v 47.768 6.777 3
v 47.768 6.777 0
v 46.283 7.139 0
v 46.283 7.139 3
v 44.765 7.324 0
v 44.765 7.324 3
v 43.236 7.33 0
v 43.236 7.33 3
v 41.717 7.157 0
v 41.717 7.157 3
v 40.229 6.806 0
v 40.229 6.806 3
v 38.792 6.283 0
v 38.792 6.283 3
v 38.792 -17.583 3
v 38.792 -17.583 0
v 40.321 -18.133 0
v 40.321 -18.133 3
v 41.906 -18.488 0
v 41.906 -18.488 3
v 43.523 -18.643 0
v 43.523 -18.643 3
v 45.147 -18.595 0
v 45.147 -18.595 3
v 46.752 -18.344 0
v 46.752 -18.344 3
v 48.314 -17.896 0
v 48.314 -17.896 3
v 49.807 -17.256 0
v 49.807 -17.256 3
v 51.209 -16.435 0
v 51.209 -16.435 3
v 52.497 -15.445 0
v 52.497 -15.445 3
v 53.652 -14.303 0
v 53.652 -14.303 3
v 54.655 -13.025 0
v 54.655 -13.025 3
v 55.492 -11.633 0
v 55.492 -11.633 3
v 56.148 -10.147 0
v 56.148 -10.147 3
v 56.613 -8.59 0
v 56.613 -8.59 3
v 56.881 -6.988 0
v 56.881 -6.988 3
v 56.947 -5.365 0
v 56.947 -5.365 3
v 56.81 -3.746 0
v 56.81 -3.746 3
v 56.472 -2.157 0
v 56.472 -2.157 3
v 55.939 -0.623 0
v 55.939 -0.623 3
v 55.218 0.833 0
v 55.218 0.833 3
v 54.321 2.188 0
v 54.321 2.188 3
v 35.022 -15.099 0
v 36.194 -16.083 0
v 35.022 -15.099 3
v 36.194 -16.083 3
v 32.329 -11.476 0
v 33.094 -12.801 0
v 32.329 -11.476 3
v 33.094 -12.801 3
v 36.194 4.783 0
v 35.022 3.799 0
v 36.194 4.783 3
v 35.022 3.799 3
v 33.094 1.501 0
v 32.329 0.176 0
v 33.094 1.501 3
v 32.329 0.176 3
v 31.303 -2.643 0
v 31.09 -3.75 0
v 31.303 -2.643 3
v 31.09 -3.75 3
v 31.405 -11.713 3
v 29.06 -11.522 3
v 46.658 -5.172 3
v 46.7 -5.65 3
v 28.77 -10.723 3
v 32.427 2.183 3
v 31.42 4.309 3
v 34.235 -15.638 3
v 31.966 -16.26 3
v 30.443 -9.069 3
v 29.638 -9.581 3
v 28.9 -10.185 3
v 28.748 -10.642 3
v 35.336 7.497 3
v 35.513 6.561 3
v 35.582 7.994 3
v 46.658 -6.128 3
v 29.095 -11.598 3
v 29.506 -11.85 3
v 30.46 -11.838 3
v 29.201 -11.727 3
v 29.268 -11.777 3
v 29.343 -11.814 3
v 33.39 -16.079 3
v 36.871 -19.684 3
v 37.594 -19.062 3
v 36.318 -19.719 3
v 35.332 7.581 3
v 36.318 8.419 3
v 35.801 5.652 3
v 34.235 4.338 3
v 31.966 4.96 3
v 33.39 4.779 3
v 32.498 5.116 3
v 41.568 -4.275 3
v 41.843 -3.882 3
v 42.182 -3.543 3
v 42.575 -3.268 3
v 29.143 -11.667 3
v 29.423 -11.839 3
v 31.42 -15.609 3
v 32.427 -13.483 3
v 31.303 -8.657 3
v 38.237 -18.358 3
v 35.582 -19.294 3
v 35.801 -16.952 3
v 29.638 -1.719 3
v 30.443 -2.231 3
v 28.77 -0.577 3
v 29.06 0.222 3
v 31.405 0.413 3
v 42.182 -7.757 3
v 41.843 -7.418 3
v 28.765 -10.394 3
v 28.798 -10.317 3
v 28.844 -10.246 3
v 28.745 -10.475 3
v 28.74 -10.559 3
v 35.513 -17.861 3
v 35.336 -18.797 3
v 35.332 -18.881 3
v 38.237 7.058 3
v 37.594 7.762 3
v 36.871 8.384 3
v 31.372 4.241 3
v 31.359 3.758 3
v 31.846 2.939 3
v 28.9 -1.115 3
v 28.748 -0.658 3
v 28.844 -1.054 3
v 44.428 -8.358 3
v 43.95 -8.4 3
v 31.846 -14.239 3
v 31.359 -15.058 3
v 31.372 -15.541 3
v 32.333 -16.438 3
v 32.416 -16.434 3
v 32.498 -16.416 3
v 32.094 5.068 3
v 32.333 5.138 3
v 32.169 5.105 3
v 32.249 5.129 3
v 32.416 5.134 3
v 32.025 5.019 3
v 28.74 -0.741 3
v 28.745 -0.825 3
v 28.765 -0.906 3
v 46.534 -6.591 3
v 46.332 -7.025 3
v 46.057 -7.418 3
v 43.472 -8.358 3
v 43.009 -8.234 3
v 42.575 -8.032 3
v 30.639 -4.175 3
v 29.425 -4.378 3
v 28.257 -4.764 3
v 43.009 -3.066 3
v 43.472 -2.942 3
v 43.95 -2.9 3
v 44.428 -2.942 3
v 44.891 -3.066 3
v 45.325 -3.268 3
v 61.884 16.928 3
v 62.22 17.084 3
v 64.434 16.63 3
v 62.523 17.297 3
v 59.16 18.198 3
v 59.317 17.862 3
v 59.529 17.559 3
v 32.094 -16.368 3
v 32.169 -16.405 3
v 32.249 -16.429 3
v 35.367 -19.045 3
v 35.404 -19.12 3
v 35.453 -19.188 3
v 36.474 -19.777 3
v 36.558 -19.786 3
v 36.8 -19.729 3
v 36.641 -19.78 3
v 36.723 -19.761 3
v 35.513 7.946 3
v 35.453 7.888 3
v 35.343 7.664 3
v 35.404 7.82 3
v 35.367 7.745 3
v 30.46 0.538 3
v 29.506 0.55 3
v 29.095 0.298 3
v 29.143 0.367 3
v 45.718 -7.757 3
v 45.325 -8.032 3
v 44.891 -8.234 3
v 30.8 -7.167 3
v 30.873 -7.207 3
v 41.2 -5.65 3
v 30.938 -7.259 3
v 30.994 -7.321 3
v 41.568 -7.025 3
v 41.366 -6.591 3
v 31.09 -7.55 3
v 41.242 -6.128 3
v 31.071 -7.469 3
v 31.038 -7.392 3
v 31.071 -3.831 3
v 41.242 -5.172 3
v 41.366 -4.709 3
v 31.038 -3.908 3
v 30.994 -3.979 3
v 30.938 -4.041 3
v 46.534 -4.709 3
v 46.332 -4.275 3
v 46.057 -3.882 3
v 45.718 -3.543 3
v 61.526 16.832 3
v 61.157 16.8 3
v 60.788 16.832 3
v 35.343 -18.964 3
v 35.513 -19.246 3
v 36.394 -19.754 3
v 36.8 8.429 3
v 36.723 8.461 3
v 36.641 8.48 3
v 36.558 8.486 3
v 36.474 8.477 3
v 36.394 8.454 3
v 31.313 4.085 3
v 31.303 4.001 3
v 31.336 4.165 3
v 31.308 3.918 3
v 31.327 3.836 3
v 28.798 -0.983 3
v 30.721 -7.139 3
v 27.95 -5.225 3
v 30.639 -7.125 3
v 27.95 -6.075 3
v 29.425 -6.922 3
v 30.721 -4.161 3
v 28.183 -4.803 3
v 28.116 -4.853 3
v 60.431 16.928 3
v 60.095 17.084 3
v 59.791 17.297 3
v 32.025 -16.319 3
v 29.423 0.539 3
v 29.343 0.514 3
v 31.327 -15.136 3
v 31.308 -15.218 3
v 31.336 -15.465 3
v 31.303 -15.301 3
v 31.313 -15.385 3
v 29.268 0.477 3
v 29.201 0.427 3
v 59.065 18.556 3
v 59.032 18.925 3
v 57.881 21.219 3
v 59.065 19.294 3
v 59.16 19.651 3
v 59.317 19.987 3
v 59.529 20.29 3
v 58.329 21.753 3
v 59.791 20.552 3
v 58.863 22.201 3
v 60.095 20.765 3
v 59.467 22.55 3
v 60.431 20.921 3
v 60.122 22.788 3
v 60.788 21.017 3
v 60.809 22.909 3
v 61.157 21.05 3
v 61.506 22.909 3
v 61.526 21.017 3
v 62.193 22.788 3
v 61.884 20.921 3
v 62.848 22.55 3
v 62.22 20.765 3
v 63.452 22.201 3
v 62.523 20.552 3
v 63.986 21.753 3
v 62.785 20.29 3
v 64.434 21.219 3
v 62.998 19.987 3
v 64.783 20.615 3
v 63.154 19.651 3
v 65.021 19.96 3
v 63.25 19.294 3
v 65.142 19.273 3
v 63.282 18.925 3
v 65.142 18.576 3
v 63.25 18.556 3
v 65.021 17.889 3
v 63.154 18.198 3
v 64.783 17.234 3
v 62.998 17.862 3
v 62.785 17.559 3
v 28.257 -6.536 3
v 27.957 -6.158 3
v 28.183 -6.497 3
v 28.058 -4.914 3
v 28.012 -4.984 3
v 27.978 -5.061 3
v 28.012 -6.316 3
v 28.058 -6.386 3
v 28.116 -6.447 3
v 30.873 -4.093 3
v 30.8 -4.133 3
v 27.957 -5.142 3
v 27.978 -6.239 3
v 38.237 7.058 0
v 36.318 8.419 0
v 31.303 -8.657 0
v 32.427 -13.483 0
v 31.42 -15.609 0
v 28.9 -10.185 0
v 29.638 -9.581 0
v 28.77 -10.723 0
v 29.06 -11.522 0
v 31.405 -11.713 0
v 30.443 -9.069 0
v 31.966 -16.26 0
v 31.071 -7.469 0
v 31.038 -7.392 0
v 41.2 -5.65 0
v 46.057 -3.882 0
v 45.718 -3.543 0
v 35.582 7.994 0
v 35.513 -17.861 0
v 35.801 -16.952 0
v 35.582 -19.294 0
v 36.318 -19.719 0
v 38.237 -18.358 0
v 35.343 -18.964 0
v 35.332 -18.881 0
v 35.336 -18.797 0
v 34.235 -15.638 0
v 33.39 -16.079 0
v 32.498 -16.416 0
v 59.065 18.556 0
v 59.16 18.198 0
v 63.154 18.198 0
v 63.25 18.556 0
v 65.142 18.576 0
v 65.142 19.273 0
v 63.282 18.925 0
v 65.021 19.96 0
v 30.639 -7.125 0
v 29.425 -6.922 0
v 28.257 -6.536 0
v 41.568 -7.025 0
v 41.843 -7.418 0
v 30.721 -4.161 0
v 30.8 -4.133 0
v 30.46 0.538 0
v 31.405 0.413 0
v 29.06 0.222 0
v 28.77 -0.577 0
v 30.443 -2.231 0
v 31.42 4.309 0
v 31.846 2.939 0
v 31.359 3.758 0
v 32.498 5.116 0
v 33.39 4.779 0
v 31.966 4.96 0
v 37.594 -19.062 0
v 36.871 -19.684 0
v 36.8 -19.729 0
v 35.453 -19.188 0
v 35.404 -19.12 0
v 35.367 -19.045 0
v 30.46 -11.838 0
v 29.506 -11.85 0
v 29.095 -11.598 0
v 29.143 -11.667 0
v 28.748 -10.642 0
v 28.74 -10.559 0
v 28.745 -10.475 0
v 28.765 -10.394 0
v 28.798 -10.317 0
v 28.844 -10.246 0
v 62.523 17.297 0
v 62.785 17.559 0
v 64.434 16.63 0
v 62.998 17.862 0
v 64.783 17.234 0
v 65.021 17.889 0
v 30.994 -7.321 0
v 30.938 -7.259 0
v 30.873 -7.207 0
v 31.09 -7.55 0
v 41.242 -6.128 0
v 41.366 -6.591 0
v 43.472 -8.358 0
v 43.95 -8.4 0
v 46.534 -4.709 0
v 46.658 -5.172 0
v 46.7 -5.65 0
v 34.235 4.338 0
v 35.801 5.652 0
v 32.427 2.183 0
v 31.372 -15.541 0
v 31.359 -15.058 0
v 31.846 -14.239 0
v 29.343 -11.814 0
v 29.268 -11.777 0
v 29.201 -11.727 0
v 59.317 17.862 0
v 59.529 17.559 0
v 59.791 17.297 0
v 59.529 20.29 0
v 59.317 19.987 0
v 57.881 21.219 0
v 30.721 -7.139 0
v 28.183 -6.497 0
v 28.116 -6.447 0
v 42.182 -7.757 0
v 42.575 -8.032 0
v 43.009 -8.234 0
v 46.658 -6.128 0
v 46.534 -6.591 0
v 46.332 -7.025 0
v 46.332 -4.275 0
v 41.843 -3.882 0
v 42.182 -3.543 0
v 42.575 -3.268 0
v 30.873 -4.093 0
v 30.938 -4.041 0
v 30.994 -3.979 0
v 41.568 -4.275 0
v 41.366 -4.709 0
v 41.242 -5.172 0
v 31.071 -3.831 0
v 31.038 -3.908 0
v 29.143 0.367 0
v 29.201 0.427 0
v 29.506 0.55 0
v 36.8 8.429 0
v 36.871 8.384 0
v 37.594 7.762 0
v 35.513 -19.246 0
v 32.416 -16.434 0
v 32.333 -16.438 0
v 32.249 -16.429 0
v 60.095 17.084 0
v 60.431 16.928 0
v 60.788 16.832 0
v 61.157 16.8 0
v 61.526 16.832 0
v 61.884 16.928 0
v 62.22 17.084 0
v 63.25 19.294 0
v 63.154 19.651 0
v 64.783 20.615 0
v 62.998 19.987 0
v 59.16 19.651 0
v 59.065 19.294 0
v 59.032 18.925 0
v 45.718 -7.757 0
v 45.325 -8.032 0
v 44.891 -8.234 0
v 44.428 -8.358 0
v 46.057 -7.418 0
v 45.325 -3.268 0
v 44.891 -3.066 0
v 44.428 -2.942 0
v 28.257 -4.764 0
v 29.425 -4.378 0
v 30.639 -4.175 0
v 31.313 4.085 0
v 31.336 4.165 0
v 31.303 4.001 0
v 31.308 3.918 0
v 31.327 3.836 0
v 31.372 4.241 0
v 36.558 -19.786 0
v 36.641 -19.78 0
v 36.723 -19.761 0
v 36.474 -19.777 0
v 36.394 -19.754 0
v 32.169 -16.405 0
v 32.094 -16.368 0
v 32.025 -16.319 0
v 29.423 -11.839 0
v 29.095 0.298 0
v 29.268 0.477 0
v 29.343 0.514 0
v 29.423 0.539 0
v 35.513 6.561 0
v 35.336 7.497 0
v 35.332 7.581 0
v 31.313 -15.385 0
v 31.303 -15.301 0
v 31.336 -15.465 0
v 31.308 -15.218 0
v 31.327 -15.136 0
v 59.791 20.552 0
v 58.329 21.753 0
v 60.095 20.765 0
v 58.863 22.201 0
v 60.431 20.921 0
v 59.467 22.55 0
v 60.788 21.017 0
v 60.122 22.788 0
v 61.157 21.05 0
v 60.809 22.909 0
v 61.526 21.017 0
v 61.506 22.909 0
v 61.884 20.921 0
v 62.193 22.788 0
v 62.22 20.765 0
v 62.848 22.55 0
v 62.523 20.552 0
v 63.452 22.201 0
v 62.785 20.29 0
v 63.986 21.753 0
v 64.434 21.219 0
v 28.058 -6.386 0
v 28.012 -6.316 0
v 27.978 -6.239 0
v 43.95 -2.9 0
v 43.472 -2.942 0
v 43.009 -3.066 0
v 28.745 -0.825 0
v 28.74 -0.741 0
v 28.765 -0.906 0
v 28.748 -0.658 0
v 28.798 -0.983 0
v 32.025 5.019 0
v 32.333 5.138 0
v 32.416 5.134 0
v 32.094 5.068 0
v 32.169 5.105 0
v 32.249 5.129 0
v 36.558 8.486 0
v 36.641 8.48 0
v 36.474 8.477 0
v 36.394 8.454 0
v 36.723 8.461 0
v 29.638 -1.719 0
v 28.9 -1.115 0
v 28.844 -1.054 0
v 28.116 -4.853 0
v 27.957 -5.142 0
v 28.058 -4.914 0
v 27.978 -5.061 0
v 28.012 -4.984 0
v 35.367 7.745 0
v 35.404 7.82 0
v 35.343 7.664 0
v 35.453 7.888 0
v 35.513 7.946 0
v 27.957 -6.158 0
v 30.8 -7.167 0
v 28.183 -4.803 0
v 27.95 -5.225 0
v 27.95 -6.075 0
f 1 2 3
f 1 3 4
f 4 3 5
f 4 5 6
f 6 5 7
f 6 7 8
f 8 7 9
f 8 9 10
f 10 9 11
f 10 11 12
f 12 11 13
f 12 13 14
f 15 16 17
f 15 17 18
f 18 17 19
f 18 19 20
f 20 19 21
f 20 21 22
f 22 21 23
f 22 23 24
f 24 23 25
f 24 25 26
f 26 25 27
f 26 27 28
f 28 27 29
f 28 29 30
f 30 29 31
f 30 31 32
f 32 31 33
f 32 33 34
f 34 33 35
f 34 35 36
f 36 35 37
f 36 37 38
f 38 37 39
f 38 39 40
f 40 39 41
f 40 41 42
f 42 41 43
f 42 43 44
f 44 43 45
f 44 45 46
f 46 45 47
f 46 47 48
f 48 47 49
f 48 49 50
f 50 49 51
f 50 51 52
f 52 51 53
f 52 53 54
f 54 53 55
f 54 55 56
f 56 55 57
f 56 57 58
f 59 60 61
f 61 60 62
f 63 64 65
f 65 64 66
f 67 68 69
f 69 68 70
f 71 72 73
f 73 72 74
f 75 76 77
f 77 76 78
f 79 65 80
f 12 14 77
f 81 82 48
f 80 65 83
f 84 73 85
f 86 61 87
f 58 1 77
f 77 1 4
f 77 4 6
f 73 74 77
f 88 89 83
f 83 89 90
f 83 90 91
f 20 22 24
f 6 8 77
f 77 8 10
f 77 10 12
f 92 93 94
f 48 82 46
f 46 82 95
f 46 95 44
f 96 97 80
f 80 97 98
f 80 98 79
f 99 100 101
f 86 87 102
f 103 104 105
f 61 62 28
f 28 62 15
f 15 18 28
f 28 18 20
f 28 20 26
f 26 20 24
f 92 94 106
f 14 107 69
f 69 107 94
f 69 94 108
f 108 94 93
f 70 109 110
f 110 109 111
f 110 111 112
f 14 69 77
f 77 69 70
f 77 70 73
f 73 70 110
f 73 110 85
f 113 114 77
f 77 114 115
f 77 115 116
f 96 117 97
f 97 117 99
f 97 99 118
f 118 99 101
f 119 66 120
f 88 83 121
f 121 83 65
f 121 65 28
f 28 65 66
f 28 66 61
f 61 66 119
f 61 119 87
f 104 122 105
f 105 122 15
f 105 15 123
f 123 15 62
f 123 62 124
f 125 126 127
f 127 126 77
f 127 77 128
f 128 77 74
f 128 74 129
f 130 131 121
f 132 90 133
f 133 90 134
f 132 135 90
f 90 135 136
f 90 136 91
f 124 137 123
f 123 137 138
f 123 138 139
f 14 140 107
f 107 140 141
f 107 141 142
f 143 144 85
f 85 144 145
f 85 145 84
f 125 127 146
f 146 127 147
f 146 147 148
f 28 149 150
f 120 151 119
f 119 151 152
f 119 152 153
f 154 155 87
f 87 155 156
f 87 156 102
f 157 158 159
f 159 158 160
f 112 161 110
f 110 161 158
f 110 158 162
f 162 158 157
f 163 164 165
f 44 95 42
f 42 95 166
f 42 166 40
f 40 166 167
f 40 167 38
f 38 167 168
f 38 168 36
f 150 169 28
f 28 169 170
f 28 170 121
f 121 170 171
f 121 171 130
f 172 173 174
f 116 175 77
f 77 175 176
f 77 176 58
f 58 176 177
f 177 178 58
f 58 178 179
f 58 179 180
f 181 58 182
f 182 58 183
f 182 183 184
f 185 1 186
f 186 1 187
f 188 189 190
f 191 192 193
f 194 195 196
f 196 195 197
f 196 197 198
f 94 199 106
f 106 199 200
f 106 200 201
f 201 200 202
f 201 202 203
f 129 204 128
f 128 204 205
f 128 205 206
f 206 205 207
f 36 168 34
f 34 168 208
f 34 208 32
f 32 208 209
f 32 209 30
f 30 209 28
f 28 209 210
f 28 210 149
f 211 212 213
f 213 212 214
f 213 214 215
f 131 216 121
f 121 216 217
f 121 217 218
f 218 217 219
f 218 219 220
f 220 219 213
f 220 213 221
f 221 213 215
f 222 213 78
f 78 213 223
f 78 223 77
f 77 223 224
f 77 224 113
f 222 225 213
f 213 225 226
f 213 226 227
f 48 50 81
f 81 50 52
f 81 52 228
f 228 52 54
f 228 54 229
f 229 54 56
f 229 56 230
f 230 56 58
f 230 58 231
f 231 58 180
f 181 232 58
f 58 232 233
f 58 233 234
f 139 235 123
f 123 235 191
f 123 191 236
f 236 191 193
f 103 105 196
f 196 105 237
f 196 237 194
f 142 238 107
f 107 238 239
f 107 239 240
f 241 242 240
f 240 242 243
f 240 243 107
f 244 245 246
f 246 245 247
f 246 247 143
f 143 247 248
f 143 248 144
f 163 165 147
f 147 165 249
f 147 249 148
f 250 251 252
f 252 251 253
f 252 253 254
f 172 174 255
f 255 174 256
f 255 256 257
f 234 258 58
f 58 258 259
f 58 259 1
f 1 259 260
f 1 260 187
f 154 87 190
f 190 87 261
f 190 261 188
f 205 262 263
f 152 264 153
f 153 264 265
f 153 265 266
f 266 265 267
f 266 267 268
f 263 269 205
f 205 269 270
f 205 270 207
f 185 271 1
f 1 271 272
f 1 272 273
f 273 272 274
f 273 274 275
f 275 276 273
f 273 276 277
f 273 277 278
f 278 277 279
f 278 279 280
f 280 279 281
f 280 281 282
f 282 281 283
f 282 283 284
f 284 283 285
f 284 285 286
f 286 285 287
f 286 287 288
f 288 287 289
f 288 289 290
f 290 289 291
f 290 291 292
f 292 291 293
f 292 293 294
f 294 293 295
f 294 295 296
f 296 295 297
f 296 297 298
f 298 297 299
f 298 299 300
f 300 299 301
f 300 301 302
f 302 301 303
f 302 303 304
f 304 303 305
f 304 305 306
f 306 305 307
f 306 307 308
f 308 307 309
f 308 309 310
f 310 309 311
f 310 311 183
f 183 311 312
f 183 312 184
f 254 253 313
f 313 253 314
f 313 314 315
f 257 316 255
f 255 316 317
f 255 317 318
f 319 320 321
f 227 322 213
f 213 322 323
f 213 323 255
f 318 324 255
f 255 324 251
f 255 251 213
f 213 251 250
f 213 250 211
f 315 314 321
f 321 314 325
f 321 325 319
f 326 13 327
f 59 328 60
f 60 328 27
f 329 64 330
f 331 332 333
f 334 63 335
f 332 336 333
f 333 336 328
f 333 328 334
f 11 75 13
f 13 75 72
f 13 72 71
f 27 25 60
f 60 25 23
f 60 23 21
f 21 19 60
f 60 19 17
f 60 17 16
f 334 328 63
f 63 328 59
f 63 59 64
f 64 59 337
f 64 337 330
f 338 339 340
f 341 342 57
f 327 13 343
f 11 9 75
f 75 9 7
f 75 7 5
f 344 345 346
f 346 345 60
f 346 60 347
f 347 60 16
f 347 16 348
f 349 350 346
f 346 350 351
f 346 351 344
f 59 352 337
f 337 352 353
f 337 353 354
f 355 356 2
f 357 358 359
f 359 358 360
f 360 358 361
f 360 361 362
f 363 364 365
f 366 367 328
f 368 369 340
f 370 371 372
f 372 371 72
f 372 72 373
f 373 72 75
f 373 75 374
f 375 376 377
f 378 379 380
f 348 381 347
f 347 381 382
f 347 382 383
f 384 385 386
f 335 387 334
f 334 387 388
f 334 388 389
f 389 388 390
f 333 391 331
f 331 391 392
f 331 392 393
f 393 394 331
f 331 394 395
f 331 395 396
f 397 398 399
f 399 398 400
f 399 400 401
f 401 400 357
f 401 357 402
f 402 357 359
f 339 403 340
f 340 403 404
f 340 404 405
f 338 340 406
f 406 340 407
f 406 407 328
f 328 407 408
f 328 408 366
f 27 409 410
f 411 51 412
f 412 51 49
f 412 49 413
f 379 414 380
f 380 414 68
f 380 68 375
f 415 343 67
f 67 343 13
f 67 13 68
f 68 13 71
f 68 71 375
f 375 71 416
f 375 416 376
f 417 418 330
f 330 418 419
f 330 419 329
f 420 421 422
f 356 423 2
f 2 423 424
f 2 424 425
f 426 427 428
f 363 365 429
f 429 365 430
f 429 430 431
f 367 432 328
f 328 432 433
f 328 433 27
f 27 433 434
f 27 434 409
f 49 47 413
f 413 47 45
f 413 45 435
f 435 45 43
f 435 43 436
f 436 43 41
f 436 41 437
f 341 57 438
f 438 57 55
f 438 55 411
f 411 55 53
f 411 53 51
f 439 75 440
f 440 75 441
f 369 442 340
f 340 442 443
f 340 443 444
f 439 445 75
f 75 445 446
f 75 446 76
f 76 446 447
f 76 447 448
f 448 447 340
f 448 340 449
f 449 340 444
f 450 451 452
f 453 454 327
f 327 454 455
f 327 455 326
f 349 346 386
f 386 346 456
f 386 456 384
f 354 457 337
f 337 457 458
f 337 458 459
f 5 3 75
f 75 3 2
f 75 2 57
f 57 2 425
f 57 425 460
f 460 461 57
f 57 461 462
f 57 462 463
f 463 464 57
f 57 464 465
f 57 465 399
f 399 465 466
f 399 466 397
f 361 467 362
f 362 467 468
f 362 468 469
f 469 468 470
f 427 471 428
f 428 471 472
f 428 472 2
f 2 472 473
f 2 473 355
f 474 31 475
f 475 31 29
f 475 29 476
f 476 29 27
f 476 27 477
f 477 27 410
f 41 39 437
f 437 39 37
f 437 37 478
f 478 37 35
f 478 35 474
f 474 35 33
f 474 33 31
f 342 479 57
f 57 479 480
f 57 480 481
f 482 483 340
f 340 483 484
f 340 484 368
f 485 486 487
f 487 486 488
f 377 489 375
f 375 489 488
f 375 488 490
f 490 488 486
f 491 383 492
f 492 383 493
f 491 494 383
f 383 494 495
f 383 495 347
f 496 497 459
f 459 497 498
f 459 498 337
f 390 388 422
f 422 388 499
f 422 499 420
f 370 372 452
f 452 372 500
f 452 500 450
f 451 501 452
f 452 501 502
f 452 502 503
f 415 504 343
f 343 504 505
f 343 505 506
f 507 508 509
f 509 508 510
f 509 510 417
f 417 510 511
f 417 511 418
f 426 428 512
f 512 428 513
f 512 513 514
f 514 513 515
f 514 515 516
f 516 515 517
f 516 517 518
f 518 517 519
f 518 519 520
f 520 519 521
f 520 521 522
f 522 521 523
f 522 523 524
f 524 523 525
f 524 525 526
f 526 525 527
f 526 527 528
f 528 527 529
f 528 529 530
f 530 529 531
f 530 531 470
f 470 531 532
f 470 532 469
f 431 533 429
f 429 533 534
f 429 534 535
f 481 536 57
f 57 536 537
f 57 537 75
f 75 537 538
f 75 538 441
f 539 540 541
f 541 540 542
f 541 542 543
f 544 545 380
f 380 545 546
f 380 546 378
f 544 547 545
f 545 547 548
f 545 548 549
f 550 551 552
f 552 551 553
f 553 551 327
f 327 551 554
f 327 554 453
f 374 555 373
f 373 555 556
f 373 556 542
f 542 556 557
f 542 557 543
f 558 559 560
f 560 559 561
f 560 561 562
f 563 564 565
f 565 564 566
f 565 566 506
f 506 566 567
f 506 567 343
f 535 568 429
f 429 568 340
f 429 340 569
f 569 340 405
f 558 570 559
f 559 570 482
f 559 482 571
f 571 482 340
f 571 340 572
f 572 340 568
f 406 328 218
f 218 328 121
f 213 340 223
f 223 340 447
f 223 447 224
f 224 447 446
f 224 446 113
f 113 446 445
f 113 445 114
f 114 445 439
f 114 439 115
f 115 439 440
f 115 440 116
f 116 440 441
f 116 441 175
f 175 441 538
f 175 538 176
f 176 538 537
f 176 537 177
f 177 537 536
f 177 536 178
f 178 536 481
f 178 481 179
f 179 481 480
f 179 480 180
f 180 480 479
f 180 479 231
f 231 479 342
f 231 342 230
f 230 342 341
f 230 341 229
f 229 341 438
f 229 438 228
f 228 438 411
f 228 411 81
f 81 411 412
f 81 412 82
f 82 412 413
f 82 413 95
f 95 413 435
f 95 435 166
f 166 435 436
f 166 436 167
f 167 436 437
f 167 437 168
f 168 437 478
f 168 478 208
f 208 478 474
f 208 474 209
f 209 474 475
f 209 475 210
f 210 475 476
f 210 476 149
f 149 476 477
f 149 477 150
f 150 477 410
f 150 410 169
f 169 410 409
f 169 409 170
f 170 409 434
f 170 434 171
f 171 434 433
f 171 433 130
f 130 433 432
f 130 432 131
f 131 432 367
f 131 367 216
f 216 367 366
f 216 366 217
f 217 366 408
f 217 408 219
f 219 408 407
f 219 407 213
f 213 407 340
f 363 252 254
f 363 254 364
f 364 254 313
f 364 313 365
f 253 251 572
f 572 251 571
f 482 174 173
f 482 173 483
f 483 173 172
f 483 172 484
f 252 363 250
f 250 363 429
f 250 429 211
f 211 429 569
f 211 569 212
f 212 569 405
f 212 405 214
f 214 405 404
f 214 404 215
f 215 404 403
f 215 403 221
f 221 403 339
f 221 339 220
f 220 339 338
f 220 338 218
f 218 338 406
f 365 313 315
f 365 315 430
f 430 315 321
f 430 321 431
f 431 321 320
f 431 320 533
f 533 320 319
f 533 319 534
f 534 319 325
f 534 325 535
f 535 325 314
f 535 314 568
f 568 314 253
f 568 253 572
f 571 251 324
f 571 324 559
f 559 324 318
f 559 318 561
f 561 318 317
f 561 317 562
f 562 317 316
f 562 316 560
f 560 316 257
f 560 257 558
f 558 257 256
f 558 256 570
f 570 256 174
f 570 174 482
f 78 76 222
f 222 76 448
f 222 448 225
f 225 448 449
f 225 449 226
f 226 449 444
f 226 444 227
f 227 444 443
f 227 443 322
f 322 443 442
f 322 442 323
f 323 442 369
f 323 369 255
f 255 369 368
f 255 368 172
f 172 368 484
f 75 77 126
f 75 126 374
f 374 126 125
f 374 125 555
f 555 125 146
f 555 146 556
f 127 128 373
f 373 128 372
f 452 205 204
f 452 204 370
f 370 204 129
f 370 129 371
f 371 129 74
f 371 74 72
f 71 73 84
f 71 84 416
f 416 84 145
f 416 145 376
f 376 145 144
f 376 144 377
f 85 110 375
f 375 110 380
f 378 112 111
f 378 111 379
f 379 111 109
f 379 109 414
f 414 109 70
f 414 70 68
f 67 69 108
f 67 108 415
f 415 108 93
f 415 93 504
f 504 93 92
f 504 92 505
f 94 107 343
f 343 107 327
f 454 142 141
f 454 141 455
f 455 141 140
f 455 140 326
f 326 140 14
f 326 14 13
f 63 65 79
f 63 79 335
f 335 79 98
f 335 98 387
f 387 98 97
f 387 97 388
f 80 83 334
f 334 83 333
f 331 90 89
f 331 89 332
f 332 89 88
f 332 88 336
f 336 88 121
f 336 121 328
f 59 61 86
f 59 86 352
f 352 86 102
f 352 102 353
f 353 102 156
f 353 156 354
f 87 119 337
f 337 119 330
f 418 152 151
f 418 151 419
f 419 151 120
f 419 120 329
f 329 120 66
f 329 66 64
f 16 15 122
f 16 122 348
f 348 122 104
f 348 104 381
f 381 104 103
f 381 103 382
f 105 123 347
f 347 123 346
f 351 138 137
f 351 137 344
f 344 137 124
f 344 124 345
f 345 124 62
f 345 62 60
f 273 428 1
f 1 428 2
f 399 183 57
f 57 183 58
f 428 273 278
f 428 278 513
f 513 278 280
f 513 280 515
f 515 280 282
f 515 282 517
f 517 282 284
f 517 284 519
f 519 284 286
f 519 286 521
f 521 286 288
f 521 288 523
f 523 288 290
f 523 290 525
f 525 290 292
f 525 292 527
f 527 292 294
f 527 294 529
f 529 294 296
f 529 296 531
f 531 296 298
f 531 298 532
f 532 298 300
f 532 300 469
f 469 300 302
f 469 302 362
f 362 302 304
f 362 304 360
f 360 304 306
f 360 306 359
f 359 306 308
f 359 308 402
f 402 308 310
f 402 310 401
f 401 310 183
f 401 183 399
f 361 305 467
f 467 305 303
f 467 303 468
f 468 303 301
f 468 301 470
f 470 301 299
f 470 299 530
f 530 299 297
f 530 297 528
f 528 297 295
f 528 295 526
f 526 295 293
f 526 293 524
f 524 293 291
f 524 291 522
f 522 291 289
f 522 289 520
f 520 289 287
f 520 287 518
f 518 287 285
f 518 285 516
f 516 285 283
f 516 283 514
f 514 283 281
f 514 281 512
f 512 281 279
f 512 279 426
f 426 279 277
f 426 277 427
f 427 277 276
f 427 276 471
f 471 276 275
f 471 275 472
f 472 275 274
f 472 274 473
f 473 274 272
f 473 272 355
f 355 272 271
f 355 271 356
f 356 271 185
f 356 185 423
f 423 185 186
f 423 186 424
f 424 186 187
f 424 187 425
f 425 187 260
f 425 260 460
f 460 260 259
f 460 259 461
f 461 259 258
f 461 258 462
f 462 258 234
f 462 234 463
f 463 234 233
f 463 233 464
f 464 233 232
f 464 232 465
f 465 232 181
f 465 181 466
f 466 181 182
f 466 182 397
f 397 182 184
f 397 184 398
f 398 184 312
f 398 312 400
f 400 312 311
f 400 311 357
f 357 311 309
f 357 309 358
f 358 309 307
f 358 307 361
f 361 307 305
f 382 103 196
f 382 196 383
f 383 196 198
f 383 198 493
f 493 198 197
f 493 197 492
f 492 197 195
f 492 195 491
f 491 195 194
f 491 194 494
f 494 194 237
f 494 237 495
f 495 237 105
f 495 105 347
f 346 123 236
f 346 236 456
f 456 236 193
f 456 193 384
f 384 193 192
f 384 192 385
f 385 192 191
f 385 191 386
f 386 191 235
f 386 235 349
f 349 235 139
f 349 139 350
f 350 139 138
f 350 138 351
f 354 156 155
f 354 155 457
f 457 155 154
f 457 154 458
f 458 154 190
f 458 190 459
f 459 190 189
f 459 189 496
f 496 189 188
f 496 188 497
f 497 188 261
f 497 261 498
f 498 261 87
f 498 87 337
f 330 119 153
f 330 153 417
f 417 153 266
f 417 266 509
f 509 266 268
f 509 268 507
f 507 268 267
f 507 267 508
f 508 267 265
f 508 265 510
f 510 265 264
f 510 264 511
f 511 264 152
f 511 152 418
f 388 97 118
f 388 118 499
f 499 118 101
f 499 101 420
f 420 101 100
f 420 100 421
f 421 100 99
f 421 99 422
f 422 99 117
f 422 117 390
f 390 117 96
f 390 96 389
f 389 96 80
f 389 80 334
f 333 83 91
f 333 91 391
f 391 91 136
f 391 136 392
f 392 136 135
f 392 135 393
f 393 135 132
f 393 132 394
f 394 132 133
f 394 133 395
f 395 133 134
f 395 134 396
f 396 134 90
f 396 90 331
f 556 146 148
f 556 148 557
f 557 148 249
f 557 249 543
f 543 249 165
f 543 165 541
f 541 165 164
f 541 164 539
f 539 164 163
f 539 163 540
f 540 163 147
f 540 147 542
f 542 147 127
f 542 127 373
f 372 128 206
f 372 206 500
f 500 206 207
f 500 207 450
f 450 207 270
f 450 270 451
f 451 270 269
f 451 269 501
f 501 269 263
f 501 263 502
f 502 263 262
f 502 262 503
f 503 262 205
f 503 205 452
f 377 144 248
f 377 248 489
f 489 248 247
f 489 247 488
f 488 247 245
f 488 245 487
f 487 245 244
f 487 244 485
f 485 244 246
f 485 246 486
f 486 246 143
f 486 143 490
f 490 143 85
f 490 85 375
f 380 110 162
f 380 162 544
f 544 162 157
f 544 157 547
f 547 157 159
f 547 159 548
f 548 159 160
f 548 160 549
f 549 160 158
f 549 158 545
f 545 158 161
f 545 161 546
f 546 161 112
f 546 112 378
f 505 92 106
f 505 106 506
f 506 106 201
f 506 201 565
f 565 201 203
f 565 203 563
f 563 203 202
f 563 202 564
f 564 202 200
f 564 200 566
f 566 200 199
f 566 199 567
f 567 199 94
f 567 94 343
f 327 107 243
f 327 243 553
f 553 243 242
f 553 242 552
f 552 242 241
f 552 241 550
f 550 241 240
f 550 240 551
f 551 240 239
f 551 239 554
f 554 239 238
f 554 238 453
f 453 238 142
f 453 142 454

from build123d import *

# Parameters (mm, degrees)
SKETCH1_R           = 13
SKETCH1_R_2         = 2.75
BOSS_EXTRUDE1_DEPTH = 3
BOSS_EXTRUDE2_START = -3
BOSS_EXTRUDE2_DEPTH = 3
FILLET1_R           = 0.5
CIRPATTERN1_COUNT   = 4
CIRPATTERN1_ANGLE   = 60
CIRPATTERN2_COUNT   = 4
CIRPATTERN2_ANGLE   = 60
SKETCH3_R           = 2.125
BOSS_EXTRUDE3_DEPTH = 3
FILLET2_R           = 0.5


with BuildPart() as part:
    # Sketch1 → Boss-Extrude1 (new body)
    with BuildSketch(Plane.XY):
        with Locations((43.95, -5.65)):
            Circle(SKETCH1_R)
        with Locations((43.95, -5.65)):
            Circle(SKETCH1_R_2, mode=Mode.SUBTRACT)
    extrude(amount=BOSS_EXTRUDE1_DEPTH)

    # Sketch2 → Boss-Extrude2 (add)
    with BuildSketch(Plane.XY.offset(3).offset(BOSS_EXTRUDE2_START)):
        with BuildLine():
            Line((27.95, -4.9), (27.95, -6.4))
            ThreePointArc((27.95, -6.4), (29.455813765, -6.929754851), (31.03682843, -7.15))
            ThreePointArc((31.03682843, -7.15), (30.95, -5.65), (31.03682843, -4.15))
            ThreePointArc((31.03682843, -4.15), (29.455813765, -4.370245149), (27.95, -4.9))
        make_face()
    boss_extrude2 = extrude(amount=BOSS_EXTRUDE2_DEPTH)

    # Fillet1
    fillet1_edges = [part.edges().sort_by_distance(p)[0] for p in [
        (31.03682843, -7.15, 1.5),
        (27.95, -6.4, 1.5),
        (27.95, -4.9, 1.5),
        (31.03682843, -4.15, 1.5),
    ]]
    fillet(fillet1_edges, radius=FILLET1_R)

    # CirPattern1: Boss-Extrude2 ×4 about axis
    cirpattern1_axis = Axis((43.95, -5.65, 0), (0, 0, -1))
    for i in range(1, CIRPATTERN1_COUNT):
        add(boss_extrude2.rotate(cirpattern1_axis, i * CIRPATTERN1_ANGLE / (CIRPATTERN1_COUNT - 1)))

    # CirPattern2: Boss-Extrude2 ×4 about axis
    cirpattern2_axis = Axis((43.95, -5.65, 0), (0, 0, 1))
    for i in range(1, CIRPATTERN2_COUNT):
        add(boss_extrude2.rotate(cirpattern2_axis, i * CIRPATTERN2_ANGLE / (CIRPATTERN2_COUNT - 1)))

    # Sketch3 → Boss-Extrude3 (add)
    with BuildSketch(Plane.XY.offset(3)):
        with BuildLine():
            Line((43.799969992, 1.109522125), (57.880684913, 21.218867074))
            ThreePointArc((57.880684913, 21.218867074), (63.451598836, 22.201169506), (64.433901268, 16.630255583))
            Line((64.433901268, 16.630255583), (49.86779594, -4.172298707))
            Line((49.86779594, -4.172298707), (43.799969992, 1.109522125))
        make_face()
        with Locations((61.157293091, 18.924561329)):
            Circle(SKETCH3_R, mode=Mode.SUBTRACT)
    extrude(amount=-BOSS_EXTRUDE3_DEPTH)

    # Fillet2
    fillet2_edges = [part.edges().sort_by_distance(p)[0] for p in [
        (36.599519053, -19.881406461, 1.5),
        (35.300480947, -19.131406461, 1.5),
        (28.65840296, -0.882447172, 1.5),
        (29.171433175, 0.527091759, 1.5),
        (31.211198203, 4.060068423, 1.5),
        (32.175379617, 5.209135087, 1.5),
        (35.300480947, 7.831406461, 1.5),
        (36.599519053, 8.581406461, 1.5),
        (29.171433175, -11.827091759, 1.5),
        (28.65840296, -10.417552828, 1.5),
        (32.175379617, -16.509135087, 1.5),
        (31.211198203, -15.360068423, 1.5),
    ]]
    fillet(fillet2_edges, radius=FILLET2_R)


solid = part.part
